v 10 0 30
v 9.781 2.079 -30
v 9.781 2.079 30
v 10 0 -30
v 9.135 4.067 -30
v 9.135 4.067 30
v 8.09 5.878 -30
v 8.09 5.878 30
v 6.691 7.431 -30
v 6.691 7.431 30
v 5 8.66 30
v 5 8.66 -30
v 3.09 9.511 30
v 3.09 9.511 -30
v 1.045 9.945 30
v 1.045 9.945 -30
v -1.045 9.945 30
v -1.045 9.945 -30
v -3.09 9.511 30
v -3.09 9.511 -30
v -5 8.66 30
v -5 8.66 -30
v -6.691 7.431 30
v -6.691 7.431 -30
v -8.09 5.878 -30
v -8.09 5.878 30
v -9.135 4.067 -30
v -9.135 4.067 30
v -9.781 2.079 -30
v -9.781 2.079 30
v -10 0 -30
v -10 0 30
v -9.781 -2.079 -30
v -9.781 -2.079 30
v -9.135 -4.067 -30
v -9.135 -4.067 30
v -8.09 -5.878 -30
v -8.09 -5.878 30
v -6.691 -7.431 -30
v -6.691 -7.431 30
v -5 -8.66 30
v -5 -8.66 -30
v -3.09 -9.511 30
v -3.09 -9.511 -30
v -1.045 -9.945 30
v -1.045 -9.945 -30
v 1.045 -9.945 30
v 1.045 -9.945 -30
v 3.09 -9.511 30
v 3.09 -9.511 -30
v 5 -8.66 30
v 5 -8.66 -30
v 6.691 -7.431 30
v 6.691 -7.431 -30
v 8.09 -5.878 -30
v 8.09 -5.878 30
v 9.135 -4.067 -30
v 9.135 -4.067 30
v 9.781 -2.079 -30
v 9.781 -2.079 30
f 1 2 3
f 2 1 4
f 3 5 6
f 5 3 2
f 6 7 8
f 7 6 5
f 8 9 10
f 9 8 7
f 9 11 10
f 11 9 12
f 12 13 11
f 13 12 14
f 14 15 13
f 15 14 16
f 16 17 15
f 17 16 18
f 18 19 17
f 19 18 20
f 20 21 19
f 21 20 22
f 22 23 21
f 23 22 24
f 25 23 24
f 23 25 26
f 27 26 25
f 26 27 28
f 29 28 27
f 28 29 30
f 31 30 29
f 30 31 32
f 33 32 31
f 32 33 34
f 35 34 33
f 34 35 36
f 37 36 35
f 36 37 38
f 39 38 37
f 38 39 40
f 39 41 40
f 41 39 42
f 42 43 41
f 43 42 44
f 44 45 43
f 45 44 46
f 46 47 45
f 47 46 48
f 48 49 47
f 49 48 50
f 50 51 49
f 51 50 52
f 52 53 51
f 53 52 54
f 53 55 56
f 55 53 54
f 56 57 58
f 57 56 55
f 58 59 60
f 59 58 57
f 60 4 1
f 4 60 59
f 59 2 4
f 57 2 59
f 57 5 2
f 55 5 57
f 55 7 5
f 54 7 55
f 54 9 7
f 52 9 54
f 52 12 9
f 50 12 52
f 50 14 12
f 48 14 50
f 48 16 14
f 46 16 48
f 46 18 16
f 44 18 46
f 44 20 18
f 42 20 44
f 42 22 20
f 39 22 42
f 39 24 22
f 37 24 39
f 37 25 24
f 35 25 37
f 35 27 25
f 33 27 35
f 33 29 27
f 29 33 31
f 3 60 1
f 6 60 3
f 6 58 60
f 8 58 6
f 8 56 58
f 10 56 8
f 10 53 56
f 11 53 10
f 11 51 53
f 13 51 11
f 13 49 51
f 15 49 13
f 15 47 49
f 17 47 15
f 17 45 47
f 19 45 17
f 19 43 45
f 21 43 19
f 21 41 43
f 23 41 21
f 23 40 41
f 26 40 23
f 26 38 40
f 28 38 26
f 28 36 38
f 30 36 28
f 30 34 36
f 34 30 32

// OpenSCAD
// Parameters for the central shaft
central_shaft_diameter = 20; // Diameter of the central shaft
central_shaft_length = 60;   // Length of the central shaft

// Central Shaft
module central_shaft() {
    cylinder(h = central_shaft_length, d = central_shaft_diameter, center = true);
}

// Render the central shaft
translate([0, 0, 0]) {
    central_shaft();
}
